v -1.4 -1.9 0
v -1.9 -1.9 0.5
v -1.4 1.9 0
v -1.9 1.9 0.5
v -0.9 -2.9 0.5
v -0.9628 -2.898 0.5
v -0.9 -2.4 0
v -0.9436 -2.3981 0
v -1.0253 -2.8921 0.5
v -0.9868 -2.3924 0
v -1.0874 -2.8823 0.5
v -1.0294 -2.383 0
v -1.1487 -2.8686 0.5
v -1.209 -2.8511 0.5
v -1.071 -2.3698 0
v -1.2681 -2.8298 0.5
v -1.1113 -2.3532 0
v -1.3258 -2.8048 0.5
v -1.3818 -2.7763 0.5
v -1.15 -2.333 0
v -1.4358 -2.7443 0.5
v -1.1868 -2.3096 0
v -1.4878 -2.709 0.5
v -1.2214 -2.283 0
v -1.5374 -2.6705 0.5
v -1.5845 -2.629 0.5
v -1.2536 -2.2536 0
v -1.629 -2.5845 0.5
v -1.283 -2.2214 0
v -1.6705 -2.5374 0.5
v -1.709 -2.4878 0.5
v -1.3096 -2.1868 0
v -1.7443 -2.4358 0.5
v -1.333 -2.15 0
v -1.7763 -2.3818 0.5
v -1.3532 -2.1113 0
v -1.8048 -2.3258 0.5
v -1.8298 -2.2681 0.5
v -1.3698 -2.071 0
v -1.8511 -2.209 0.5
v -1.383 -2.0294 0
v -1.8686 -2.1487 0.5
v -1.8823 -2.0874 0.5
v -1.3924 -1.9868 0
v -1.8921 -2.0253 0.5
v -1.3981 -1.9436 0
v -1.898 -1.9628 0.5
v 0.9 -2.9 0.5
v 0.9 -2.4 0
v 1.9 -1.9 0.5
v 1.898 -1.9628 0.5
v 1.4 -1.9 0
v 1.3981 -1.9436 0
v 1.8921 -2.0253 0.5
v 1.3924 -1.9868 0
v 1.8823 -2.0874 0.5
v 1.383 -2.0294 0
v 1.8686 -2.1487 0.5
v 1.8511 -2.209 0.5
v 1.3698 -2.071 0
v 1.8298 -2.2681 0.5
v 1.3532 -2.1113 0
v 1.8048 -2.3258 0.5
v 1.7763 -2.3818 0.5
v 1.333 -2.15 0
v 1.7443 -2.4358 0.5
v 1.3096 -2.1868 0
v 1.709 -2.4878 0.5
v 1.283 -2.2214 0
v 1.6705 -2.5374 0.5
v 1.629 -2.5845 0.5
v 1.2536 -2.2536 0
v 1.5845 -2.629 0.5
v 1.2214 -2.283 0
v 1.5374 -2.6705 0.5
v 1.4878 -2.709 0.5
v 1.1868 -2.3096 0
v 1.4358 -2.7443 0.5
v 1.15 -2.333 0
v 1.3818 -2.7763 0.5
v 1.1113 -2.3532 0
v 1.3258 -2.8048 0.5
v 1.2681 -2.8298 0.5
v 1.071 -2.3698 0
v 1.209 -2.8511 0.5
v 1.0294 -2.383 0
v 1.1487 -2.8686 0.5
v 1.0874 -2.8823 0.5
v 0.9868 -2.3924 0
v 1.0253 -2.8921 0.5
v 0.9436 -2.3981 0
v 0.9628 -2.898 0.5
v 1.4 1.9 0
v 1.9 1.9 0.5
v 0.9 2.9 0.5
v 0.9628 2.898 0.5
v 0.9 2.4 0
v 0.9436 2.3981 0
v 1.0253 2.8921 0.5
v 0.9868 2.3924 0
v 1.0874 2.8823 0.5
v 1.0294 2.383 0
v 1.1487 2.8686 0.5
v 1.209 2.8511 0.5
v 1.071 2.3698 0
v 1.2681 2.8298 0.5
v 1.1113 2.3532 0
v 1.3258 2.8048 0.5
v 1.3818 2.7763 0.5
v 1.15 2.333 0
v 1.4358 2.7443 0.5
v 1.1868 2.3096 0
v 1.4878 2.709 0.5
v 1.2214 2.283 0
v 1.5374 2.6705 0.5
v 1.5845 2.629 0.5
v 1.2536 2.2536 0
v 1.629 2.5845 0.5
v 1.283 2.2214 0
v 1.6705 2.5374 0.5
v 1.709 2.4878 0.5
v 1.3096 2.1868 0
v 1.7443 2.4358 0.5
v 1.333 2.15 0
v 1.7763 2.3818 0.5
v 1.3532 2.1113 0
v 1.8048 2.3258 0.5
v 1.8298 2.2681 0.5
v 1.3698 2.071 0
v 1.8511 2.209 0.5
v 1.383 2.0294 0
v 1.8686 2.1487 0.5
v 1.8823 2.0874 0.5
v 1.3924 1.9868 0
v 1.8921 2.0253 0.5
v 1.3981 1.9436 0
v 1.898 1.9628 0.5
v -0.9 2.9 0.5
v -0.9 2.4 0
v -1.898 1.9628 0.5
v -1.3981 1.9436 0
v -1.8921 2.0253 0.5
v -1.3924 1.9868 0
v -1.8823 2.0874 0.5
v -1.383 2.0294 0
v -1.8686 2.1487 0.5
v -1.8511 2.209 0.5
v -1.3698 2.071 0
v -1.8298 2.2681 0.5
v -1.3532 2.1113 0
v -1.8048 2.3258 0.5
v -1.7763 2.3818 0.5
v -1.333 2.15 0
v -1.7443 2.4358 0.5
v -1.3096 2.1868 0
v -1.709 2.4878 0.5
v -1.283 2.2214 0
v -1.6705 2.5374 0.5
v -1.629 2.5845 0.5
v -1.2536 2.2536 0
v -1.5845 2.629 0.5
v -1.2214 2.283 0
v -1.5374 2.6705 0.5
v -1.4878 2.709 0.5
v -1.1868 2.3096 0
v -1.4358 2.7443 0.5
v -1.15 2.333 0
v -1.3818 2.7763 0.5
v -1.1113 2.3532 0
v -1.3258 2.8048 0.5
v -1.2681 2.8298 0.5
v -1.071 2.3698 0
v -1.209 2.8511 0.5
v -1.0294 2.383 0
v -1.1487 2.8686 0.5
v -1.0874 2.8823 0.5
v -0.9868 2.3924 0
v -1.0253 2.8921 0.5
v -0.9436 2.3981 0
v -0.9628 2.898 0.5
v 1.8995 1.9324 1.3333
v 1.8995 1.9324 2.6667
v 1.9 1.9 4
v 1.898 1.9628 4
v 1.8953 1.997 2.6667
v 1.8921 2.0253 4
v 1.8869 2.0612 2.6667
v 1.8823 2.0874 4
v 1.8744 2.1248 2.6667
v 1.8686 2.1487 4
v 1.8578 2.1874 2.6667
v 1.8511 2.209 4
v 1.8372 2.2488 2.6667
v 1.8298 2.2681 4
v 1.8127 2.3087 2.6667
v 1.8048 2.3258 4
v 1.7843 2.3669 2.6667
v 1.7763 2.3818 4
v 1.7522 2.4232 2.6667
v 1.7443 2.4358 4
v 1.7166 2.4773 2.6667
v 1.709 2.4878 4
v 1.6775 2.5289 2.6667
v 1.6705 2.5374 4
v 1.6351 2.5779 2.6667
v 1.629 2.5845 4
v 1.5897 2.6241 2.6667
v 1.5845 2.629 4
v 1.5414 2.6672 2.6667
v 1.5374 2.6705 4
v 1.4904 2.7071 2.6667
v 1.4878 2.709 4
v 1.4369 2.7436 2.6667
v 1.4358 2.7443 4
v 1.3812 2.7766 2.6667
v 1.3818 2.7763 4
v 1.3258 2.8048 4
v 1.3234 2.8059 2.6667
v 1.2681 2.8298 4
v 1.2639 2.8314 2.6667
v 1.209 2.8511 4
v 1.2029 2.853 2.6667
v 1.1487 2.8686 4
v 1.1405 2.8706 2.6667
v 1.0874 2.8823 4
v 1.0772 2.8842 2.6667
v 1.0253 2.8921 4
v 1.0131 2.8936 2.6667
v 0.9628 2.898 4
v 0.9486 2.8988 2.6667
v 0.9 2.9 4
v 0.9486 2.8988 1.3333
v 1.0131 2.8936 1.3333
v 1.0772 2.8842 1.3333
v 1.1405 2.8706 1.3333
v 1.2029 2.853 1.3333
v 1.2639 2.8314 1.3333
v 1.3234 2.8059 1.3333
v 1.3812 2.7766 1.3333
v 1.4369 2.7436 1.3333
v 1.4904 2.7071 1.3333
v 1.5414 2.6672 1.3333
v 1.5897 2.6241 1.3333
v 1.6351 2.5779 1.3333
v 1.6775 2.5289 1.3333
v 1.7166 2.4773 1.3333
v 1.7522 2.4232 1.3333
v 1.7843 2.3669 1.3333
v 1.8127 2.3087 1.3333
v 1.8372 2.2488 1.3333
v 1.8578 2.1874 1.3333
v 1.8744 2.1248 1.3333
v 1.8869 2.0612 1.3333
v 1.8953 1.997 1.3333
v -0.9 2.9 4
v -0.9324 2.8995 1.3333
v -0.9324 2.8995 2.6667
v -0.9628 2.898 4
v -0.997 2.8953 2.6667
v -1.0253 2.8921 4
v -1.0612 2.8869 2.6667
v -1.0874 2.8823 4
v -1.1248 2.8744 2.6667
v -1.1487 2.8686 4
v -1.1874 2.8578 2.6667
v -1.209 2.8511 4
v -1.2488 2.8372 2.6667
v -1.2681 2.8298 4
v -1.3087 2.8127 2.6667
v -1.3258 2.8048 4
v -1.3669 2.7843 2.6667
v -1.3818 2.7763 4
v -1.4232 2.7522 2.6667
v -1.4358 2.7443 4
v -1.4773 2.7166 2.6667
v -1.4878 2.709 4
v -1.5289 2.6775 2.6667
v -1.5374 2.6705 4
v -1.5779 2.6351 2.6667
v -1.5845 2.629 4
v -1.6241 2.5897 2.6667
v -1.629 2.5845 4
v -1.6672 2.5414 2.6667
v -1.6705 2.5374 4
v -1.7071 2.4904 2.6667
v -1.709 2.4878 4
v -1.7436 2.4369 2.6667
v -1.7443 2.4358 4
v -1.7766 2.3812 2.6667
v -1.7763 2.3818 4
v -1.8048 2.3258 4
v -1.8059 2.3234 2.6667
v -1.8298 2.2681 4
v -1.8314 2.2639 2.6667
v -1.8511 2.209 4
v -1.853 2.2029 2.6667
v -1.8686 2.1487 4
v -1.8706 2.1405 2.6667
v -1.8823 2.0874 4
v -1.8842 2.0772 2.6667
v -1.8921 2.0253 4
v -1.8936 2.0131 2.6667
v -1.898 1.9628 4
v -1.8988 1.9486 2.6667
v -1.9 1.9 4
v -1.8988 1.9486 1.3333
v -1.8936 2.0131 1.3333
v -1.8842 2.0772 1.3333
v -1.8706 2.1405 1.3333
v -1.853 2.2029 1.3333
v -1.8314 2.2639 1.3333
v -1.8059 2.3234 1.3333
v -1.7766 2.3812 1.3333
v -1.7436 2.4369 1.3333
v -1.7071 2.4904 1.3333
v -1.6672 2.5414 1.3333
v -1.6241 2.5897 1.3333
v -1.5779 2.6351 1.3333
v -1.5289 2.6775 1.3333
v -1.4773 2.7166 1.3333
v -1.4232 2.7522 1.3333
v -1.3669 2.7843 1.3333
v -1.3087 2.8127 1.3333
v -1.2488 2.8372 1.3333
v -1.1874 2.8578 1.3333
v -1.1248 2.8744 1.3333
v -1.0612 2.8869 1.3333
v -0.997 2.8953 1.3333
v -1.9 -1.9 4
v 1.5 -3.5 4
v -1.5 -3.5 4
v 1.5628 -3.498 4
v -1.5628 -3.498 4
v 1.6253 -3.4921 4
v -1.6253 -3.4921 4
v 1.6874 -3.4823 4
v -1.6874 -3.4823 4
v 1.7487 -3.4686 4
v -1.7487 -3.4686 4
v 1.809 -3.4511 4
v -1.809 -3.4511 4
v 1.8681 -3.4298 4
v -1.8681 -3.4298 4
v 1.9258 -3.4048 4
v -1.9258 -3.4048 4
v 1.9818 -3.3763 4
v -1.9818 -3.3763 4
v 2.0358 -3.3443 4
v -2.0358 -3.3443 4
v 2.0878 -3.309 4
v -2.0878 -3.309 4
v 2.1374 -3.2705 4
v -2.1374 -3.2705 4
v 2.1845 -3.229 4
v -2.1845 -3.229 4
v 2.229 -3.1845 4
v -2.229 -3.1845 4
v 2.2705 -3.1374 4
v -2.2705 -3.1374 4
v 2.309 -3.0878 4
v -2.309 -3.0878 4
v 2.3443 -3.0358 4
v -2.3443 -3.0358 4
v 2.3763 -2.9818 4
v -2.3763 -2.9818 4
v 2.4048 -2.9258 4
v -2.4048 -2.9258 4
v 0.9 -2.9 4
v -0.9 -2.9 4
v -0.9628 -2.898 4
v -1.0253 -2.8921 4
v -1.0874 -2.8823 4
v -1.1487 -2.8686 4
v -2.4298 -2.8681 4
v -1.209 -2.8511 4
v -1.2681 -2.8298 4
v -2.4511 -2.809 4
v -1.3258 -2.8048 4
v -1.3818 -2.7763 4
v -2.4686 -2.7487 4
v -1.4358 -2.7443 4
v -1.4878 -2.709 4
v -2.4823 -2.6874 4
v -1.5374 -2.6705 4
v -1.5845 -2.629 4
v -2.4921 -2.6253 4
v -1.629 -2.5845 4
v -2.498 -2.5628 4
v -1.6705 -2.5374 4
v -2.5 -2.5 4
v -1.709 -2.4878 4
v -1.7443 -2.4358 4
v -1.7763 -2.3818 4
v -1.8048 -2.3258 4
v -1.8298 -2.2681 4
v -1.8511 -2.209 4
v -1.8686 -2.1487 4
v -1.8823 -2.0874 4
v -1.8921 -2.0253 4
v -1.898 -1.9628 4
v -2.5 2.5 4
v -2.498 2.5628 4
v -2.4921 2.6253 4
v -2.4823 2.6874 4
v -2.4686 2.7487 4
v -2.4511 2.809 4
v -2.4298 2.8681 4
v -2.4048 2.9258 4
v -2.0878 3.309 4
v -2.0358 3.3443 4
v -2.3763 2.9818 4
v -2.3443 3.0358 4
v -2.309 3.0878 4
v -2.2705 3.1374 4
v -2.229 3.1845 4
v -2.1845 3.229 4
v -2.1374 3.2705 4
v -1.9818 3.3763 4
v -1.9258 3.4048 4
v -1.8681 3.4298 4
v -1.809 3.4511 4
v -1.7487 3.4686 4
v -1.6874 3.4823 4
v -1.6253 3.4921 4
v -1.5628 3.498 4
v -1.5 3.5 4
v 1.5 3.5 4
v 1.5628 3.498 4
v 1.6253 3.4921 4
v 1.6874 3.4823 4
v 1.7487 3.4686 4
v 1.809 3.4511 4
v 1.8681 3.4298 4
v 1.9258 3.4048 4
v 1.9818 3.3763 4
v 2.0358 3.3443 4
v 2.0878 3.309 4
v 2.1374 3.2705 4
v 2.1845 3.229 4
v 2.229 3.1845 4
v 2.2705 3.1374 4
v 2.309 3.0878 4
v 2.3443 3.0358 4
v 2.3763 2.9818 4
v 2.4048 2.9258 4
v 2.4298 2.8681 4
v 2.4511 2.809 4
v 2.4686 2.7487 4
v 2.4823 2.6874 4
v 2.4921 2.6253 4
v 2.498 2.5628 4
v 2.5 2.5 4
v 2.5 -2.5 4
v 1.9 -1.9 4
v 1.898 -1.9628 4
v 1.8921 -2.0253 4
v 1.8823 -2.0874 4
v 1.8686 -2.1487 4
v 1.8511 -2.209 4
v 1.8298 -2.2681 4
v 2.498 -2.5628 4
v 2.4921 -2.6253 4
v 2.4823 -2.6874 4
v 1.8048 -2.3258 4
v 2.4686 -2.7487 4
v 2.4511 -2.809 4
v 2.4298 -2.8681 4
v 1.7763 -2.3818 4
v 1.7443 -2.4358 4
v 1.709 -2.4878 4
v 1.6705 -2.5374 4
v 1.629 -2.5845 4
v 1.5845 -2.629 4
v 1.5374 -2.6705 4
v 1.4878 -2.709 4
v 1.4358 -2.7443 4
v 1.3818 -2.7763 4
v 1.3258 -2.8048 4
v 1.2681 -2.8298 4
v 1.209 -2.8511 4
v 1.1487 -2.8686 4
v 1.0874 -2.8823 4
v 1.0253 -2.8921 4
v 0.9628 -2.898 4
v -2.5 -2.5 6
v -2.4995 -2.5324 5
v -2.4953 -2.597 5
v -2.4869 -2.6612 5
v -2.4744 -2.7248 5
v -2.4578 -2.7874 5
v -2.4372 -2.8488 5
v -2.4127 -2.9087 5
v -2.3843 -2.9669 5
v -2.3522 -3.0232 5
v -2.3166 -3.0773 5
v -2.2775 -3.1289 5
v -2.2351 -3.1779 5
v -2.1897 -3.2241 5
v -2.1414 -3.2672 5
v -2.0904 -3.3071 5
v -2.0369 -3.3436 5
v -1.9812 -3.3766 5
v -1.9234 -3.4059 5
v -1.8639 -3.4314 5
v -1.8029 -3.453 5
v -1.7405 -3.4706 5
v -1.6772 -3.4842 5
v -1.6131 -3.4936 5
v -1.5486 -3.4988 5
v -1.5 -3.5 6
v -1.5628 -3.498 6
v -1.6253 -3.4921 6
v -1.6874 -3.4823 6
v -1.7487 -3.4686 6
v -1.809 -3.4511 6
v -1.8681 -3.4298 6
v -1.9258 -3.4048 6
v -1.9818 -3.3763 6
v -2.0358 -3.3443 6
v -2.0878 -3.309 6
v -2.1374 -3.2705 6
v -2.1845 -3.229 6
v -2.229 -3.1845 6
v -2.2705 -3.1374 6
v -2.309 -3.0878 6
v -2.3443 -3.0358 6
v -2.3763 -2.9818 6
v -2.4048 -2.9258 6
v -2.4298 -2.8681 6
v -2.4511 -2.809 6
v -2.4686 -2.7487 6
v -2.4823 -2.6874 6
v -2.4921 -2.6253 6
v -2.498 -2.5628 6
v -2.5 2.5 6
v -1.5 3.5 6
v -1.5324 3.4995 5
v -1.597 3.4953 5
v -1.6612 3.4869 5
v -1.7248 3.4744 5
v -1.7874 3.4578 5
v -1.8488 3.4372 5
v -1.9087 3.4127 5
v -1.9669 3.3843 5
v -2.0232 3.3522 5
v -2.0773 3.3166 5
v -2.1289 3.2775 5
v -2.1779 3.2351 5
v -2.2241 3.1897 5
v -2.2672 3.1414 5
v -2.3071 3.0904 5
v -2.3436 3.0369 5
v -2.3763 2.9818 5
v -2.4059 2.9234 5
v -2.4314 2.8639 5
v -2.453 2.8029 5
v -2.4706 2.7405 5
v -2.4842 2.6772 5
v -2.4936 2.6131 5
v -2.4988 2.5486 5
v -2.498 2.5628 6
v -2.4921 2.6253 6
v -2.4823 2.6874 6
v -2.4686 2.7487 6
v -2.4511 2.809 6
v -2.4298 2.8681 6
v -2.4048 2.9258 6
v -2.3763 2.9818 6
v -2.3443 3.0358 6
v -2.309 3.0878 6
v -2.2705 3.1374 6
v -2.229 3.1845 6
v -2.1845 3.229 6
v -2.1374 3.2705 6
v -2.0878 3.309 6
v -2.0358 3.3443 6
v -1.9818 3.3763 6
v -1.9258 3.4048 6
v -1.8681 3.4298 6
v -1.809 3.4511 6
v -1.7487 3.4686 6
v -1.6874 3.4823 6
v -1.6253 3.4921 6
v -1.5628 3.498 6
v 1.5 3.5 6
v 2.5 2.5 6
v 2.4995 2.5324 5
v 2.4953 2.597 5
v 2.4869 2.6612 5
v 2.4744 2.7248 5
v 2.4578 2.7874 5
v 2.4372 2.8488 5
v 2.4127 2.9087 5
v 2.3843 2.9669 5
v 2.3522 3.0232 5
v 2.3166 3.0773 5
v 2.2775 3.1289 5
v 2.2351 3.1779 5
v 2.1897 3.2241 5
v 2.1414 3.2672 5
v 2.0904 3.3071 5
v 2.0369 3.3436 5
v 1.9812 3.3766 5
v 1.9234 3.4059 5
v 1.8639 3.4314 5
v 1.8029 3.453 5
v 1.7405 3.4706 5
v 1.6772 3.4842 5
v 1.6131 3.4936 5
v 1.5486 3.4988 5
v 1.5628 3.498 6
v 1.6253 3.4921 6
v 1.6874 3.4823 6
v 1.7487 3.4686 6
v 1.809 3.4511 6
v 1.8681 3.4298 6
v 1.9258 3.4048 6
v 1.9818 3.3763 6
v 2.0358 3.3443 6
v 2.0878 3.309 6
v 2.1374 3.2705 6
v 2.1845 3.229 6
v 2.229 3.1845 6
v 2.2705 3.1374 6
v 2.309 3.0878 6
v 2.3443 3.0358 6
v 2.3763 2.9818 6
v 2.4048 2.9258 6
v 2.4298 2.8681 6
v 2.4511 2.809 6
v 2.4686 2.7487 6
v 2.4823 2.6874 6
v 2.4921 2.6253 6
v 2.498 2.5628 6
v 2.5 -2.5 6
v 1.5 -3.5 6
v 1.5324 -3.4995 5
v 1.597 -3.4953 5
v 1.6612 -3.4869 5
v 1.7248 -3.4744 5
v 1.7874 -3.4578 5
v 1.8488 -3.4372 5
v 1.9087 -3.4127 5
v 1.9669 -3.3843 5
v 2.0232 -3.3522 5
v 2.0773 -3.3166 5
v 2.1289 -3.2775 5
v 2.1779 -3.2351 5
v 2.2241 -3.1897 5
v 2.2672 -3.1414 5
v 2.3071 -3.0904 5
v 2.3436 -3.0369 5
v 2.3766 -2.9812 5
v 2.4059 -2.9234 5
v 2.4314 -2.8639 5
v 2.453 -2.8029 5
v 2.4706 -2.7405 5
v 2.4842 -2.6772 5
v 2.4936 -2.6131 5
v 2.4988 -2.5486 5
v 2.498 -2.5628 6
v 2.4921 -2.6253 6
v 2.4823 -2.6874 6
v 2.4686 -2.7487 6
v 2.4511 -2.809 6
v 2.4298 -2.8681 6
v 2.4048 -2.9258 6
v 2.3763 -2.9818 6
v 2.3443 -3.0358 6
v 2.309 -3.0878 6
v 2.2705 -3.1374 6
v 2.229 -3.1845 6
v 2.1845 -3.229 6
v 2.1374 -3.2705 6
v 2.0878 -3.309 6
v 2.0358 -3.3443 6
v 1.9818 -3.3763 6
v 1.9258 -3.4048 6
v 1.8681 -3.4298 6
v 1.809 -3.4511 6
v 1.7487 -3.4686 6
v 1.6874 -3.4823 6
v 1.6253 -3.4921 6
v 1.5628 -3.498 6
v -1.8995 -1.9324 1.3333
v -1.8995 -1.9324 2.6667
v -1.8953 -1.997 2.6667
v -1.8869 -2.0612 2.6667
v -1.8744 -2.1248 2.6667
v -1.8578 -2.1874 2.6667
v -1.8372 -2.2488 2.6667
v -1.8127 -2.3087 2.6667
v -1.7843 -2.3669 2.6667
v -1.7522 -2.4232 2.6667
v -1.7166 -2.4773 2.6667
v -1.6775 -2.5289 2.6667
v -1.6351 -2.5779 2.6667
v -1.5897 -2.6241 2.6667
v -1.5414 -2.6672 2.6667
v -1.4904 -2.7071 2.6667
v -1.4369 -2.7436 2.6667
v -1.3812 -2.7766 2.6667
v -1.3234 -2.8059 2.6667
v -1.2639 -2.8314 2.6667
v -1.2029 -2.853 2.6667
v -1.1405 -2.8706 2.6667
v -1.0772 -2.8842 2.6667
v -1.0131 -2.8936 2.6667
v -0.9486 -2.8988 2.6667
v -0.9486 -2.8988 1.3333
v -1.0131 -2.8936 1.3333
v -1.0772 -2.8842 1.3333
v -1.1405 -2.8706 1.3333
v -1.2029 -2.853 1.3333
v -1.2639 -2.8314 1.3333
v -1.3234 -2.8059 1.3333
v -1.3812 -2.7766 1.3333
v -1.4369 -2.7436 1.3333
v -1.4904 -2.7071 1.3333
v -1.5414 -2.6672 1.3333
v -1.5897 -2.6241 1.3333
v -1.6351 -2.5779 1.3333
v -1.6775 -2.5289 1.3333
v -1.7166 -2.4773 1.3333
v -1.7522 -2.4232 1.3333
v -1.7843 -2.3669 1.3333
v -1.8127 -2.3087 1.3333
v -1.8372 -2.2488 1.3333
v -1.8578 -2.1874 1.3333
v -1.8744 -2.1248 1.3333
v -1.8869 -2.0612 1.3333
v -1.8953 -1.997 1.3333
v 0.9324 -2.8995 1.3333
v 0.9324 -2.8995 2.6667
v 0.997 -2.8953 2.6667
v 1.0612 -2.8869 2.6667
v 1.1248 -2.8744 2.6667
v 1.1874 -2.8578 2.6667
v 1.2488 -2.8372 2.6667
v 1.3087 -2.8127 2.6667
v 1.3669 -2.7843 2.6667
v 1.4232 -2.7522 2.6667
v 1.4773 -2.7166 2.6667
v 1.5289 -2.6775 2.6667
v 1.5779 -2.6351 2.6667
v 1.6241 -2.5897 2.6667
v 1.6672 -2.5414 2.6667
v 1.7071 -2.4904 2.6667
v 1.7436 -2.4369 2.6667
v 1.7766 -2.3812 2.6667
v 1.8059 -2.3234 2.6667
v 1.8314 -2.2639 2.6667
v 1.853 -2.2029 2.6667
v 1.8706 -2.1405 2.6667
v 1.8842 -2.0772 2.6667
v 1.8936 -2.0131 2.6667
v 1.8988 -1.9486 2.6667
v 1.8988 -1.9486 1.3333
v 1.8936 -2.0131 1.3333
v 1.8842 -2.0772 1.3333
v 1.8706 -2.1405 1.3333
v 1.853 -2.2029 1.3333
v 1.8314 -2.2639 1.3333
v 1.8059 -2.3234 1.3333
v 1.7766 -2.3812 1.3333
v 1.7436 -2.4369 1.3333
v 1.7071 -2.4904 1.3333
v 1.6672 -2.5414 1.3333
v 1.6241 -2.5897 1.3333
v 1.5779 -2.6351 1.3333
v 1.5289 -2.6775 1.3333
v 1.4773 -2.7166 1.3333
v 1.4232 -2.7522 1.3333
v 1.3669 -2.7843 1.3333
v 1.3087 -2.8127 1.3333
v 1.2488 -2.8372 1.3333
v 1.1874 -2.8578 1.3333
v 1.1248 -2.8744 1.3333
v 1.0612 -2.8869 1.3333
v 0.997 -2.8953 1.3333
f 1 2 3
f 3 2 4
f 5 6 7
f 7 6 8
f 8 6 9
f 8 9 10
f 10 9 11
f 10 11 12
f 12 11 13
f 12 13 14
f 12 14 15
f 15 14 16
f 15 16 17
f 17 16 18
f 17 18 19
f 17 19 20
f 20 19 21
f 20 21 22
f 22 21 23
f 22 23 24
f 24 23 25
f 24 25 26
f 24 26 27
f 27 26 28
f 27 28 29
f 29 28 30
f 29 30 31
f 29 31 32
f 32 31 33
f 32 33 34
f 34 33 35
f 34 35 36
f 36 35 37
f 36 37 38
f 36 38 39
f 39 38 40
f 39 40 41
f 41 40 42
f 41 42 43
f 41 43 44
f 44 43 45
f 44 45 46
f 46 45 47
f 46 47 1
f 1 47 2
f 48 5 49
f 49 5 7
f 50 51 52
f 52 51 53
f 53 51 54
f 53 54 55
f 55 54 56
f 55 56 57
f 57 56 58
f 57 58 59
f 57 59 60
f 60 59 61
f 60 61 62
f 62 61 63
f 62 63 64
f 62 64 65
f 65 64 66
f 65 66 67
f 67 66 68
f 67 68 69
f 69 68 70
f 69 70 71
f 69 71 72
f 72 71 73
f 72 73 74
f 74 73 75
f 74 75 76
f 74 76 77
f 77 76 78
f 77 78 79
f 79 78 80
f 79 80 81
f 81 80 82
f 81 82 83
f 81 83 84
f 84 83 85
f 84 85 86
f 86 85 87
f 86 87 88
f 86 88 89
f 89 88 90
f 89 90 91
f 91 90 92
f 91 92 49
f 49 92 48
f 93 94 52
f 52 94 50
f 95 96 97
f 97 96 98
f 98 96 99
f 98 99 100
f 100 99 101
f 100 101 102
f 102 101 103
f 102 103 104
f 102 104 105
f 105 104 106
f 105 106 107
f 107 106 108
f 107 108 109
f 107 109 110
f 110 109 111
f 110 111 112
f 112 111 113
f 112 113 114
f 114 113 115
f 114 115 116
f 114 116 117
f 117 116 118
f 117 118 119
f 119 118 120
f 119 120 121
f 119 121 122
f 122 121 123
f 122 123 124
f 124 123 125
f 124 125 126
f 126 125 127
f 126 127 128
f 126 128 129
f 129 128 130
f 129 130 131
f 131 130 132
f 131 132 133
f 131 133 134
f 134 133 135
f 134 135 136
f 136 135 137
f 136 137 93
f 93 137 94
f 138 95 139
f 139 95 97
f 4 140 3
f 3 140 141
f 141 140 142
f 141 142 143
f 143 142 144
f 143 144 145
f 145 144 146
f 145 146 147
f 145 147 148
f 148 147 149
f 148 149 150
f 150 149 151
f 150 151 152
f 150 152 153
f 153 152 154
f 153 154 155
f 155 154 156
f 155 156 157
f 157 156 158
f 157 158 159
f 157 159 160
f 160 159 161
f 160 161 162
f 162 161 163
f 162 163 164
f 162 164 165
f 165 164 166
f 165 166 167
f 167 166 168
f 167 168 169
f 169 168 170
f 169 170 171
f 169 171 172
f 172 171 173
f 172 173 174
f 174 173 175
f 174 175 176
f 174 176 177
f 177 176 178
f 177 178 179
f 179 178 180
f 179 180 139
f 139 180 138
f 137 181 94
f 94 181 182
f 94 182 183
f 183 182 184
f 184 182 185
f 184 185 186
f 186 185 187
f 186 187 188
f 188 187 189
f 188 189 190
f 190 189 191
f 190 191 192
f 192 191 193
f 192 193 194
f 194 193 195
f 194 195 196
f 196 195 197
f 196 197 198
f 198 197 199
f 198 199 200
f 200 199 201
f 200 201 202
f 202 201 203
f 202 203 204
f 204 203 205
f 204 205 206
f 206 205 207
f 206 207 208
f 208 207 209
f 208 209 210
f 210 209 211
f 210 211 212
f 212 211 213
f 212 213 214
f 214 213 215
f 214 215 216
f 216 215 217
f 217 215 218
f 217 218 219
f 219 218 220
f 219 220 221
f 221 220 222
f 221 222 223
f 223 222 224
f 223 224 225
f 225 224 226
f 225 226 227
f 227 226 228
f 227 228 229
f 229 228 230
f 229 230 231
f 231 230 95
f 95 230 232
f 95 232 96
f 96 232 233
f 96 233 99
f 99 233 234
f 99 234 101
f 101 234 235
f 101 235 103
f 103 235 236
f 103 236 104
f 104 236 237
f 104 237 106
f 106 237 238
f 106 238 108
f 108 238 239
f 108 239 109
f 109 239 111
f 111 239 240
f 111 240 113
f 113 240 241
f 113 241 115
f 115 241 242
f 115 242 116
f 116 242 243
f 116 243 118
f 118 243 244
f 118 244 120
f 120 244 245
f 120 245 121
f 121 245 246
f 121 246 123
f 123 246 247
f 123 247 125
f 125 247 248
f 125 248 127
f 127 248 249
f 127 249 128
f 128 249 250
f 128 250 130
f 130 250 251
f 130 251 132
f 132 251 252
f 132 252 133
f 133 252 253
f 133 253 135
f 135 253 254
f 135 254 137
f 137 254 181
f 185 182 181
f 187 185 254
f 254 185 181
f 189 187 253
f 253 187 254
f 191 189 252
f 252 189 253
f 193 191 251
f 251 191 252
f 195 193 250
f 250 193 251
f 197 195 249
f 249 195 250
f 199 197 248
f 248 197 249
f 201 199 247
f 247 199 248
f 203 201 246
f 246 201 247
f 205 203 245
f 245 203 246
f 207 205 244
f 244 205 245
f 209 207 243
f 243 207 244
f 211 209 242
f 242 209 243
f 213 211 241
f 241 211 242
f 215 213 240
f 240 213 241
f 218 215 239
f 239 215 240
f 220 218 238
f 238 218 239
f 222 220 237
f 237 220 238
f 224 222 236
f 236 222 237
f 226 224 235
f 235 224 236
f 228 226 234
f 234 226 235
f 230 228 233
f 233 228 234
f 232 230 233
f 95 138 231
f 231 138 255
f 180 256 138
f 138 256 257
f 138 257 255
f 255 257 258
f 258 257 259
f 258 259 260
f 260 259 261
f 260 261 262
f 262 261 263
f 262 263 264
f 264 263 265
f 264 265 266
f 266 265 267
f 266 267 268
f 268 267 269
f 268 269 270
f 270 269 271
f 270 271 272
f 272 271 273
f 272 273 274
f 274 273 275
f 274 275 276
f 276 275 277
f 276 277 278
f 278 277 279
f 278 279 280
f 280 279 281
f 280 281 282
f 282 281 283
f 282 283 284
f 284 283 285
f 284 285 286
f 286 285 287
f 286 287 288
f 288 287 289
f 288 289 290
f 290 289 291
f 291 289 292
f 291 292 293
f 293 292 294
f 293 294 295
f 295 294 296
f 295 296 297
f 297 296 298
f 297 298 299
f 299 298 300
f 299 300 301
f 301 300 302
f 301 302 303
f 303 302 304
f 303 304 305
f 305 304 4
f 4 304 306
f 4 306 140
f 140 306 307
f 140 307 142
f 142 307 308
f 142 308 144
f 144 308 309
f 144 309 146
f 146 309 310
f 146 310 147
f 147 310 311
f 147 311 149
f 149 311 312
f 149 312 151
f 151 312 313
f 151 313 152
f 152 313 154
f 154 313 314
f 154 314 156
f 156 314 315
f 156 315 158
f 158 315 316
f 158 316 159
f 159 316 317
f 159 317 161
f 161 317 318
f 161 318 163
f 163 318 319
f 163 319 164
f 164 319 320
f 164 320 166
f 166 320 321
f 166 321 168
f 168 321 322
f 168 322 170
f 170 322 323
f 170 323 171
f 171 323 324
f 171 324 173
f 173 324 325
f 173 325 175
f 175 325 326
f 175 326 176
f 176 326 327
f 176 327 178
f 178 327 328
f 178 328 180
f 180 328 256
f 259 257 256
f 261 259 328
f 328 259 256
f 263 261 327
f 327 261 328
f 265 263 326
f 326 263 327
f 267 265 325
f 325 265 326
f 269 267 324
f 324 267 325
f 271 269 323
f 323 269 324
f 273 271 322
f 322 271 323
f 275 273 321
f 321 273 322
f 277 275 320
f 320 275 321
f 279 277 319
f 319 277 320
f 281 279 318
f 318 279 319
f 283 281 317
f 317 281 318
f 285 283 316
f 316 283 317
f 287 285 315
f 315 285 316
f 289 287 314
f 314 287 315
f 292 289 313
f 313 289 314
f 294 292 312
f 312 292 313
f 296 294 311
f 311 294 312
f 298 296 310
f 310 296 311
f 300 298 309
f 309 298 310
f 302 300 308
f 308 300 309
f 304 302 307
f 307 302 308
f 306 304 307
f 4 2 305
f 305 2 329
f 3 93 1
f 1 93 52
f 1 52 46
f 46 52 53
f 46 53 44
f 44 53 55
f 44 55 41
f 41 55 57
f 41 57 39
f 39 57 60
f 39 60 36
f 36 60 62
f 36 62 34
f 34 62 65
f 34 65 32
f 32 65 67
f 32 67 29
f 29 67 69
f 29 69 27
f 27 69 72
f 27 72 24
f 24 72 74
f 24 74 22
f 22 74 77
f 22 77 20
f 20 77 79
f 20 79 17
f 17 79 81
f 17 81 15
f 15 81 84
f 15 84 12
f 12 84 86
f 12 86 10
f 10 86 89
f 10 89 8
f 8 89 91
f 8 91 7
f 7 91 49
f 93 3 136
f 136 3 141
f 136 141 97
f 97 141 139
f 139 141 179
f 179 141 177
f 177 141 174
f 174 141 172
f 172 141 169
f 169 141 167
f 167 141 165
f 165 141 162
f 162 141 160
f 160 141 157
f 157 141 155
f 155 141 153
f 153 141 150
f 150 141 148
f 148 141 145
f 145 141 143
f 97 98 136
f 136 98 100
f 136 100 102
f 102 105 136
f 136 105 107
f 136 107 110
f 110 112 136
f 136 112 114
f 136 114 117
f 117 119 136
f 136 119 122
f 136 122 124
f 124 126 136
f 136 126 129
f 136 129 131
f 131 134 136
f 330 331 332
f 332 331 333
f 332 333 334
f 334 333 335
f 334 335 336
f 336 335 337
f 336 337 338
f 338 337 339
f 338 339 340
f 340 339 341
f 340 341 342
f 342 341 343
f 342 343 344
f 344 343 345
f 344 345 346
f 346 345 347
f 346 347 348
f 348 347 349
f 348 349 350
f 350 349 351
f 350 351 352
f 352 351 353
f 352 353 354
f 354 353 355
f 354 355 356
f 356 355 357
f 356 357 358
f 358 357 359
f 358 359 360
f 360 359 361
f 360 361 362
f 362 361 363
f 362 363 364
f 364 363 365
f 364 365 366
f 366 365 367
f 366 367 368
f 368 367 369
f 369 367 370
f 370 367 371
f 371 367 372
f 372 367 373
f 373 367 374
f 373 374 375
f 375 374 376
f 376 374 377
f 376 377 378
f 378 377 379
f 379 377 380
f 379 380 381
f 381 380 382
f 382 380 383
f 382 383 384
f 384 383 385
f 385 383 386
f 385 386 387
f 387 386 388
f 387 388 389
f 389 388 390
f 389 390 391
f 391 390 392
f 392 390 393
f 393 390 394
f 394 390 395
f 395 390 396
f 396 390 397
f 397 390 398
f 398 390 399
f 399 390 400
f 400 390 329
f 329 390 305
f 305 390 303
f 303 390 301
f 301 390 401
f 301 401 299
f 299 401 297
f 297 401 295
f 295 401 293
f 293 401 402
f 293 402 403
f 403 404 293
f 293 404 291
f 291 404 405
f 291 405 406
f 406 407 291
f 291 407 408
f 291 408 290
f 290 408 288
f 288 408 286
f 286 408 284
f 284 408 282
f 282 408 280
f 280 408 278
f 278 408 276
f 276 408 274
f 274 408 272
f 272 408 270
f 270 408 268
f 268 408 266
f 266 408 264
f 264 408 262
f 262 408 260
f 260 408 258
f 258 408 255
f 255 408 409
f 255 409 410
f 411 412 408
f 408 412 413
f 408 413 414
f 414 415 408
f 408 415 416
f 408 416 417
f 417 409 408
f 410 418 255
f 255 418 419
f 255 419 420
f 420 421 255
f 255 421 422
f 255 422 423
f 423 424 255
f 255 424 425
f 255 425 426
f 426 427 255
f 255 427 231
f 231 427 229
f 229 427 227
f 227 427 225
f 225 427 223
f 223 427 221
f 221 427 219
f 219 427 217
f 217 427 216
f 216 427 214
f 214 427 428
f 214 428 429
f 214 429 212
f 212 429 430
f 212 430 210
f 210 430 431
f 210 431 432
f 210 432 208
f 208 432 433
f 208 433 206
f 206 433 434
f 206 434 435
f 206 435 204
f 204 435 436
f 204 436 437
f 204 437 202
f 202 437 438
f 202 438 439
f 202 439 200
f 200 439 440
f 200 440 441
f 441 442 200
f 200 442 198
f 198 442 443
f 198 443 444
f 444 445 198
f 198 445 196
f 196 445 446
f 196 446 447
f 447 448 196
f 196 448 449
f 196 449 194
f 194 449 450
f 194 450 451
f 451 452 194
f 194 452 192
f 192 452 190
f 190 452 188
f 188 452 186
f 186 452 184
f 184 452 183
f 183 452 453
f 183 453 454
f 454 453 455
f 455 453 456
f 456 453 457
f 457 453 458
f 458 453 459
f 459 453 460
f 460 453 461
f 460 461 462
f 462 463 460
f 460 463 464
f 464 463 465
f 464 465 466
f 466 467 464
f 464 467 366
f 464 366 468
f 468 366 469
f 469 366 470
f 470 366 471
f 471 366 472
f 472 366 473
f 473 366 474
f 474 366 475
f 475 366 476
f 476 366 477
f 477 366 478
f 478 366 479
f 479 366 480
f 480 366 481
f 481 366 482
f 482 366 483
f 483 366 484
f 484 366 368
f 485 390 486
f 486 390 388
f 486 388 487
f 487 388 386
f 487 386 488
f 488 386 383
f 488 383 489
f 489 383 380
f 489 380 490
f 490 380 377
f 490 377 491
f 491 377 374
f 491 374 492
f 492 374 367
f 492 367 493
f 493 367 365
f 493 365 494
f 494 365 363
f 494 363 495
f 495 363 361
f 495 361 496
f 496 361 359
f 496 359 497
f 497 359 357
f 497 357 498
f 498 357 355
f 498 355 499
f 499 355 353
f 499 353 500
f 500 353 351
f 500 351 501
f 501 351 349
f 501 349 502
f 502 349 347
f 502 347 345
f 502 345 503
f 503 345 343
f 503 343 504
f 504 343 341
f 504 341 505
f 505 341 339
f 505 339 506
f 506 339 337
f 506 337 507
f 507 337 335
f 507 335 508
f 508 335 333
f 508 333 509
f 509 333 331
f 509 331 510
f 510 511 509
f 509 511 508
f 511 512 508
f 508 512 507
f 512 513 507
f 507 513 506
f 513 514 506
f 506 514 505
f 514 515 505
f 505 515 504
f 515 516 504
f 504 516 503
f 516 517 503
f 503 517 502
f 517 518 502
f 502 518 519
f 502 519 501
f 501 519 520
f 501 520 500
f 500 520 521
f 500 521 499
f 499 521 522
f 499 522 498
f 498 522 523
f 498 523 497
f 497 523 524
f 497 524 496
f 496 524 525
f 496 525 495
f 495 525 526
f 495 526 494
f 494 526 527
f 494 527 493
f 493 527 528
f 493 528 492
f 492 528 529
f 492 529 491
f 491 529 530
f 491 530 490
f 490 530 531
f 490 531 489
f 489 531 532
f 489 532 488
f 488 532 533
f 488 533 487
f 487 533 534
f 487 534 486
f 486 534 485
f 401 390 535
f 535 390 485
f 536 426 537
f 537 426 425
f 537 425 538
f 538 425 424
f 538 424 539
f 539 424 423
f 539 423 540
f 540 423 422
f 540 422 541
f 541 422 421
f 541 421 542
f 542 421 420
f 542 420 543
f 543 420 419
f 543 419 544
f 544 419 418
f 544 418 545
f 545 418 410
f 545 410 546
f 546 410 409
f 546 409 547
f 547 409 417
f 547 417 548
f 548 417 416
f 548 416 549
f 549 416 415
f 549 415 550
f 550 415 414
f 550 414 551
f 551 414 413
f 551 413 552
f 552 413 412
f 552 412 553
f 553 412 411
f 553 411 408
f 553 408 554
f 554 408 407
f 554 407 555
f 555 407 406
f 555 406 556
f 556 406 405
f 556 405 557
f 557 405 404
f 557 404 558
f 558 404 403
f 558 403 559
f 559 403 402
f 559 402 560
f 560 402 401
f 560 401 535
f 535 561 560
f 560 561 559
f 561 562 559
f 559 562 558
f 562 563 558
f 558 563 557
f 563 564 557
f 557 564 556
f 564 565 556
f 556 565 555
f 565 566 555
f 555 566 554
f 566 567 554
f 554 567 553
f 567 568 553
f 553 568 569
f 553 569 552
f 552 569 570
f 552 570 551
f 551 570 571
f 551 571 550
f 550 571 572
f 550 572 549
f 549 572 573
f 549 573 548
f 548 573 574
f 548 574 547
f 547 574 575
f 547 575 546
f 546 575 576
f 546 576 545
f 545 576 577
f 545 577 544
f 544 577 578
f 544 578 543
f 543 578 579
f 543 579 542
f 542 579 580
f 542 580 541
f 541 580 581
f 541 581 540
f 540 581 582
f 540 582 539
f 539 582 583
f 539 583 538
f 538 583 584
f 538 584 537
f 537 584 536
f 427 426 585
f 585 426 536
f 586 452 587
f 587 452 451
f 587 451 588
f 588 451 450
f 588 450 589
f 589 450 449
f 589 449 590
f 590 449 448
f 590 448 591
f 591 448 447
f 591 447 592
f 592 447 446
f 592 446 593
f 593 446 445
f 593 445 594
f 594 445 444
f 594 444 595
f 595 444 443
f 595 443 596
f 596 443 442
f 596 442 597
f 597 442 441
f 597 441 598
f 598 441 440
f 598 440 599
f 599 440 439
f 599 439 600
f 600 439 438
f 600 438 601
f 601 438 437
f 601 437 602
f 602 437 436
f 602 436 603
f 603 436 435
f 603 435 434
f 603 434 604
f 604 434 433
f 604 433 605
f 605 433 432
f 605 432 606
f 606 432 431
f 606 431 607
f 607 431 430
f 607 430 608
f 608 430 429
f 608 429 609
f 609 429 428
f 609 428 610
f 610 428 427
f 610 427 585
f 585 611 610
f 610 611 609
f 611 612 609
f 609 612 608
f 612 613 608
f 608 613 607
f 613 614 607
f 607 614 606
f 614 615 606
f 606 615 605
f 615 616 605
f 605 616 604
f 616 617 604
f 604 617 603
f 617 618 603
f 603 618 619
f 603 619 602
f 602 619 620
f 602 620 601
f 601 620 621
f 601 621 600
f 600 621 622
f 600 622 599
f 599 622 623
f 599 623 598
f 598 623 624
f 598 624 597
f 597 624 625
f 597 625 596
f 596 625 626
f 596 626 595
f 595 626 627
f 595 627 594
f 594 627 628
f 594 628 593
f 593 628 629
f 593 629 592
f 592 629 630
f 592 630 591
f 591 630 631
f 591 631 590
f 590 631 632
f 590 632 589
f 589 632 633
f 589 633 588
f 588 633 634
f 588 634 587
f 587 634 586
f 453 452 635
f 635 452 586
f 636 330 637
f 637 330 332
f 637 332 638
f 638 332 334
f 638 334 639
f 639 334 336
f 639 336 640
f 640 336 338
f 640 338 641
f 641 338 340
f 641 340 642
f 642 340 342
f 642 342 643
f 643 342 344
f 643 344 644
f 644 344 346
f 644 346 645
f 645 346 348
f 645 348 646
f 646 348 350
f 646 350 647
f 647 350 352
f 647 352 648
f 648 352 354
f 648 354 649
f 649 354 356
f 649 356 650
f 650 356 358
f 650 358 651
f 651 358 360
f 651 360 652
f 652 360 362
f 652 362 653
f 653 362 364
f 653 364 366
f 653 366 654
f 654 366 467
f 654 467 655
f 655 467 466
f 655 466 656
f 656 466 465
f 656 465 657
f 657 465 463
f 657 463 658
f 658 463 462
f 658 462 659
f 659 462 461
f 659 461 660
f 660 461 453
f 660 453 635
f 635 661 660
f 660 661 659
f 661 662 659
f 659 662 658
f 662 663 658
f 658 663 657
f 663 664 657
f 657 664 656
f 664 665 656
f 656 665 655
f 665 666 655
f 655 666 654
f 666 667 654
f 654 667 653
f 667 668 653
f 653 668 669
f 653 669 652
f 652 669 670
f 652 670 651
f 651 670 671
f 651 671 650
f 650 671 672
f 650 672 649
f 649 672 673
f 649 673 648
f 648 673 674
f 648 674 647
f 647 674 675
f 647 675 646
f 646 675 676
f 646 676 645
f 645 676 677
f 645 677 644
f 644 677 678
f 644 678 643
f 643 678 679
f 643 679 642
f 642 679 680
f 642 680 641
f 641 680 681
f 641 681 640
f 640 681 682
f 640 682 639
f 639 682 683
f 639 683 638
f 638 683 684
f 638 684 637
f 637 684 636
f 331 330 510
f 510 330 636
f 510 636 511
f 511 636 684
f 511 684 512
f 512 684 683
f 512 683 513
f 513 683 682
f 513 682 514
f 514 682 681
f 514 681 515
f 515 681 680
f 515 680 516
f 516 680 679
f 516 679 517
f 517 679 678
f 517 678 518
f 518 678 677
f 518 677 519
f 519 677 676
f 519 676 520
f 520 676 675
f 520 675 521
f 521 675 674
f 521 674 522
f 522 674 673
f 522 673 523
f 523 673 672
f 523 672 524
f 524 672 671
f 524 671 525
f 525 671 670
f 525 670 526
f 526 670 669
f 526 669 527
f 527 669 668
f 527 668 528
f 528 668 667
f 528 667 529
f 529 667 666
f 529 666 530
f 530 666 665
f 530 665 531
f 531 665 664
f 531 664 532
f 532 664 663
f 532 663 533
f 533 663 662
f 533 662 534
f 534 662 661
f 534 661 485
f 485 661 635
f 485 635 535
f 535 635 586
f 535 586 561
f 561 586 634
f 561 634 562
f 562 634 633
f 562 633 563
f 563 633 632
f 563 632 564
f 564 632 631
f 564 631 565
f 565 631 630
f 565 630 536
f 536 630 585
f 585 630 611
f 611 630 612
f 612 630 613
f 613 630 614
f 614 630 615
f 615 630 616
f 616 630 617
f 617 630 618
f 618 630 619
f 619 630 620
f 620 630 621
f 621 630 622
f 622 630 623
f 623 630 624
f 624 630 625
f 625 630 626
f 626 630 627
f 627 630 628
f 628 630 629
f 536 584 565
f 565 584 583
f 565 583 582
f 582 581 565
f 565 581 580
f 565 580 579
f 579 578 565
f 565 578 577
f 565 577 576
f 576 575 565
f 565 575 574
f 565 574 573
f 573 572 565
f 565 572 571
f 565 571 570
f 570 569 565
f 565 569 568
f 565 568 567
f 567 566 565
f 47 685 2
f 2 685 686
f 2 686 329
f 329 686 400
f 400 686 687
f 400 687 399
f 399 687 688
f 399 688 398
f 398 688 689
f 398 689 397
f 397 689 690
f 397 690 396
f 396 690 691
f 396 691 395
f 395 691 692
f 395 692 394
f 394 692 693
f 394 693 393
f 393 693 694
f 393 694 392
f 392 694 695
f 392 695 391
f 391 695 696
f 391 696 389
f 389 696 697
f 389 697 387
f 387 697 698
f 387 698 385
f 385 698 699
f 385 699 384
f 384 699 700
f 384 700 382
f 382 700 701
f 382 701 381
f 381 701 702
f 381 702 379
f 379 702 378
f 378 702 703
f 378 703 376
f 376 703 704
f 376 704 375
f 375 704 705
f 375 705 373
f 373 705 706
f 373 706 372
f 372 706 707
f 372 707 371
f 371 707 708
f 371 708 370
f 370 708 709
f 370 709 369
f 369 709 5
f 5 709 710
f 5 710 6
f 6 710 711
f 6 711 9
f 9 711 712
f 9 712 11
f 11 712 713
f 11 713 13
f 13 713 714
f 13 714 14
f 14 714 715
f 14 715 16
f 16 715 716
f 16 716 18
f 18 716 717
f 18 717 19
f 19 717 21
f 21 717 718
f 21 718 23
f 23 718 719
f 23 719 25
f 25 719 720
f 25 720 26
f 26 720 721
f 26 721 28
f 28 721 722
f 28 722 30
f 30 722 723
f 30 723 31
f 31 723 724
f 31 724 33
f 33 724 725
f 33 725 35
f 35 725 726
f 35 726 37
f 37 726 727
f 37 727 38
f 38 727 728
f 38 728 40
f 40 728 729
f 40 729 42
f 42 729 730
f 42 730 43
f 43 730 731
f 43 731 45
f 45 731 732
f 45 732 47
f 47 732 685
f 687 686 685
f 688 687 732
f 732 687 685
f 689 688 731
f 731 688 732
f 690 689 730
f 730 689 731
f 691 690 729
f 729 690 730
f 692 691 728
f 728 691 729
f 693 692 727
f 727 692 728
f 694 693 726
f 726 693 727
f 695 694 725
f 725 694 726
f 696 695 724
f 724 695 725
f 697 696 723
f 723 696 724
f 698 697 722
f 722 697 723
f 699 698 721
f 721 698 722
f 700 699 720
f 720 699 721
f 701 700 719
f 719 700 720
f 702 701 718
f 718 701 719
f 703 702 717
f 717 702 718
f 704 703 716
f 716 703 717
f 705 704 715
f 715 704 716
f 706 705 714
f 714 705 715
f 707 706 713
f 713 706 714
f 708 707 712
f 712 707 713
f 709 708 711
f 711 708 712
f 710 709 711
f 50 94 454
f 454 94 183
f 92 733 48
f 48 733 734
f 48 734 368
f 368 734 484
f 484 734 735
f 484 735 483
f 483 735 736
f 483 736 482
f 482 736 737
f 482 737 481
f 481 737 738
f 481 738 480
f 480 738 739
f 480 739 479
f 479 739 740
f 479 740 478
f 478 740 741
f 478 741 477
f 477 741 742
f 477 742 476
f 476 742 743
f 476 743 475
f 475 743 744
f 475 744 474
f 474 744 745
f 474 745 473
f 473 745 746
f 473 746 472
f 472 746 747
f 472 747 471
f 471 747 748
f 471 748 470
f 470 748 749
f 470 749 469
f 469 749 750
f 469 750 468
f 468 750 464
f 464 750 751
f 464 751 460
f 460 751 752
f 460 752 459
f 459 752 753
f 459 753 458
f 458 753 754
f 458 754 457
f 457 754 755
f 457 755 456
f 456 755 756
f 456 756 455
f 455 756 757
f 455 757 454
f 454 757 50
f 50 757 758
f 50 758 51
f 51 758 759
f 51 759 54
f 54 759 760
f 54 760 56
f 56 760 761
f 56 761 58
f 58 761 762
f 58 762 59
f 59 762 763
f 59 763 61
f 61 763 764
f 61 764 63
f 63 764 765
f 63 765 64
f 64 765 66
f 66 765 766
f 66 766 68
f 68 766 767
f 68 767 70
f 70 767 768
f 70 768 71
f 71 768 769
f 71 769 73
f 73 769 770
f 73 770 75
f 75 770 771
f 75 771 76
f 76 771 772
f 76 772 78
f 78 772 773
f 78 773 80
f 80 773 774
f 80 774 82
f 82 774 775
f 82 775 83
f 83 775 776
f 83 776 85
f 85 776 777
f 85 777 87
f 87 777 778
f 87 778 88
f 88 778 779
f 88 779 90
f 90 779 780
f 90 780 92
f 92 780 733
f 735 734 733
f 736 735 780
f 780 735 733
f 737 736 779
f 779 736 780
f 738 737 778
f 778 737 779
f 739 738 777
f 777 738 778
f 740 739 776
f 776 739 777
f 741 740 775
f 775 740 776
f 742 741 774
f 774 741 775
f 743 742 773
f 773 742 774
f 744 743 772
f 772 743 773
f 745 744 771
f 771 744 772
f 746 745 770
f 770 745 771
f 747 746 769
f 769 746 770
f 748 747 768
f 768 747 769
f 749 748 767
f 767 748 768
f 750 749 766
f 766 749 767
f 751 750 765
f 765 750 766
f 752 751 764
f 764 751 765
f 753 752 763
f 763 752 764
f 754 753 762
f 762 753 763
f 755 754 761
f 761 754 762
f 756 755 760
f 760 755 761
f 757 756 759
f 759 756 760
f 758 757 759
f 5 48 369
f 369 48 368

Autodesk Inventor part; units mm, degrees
ref_plane "YZ Plane" through (0, 0, 0) normal (1, 0, 0) x (0, 1, 0)
ref_plane "XZ Plane" through (0, 0, 0) normal (0, 1, 0) x (-1, 0, 0)
ref_plane "XY Plane" through (0, 0, 0) normal (0, 0, 1) x (1, 0, 0)
sketch "Sketch1" plane through (0, 0, 0) normal (0, 0, 1) x (1, 0, 0)
  line L0 (-0.9, 2.9) -> (0.9, 2.9)
  line L1 (1.9, 1.9) -> (1.9, -1.9)
  line L2 (0.9, -2.9) -> (-0.9, -2.9)
  line L3 (-1.9, -1.9) -> (-1.9, 1.9)
  arc A0 (1.9, 1.9) -> (0.9, 2.9) centre (0.9, 1.9) ccw
  arc A1 (0.9, -2.9) -> (1.9, -1.9) centre (0.9, -1.9) ccw
  arc A2 (-1.9, -1.9) -> (-0.9, -2.9) centre (-0.9, -1.9) ccw
  arc A3 (-0.9, 2.9) -> (-1.9, 1.9) centre (-0.9, 1.9) ccw
  point P0 (0, 0)
  point P1 (0, 2.9)
  point P2 (-1.9, 0)
  dimension "d1" = 3.8
  dimension "d2" = 5.8
  dimension "d3" = 1
extrude "Extrusion1" add sketch "Sketch1" along normal blind 4
sketch "Sketch2" plane through (0, 0, 4) normal (0, 0, 1) x (1, 0, 0)
  line L0 (-1.5, 3.5) -> (1.5, 3.5)
  line L1 (2.5, 2.5) -> (2.5, -2.5)
  line L2 (1.5, -3.5) -> (-1.5, -3.5)
  line L3 (-2.5, -2.5) -> (-2.5, 2.5)
  arc A0 (2.5, 2.5) -> (1.5, 3.5) centre (1.5, 2.5) ccw
  arc A1 (-2.5, -2.5) -> (-1.5, -3.5) centre (-1.5, -2.5) ccw
  arc A2 (1.5, -3.5) -> (2.5, -2.5) centre (1.5, -2.5) ccw
  arc A3 (-1.5, 3.5) -> (-2.5, 2.5) centre (-1.5, 2.5) ccw
  point P0 (0, 0)
  point P1 (-2.5, 3.5)
  point P2 (2.5, -3.5)
  point P3 (2.5, 3.5)
  point P4 (0, 3.5)
  point P5 (2.5, 0)
  dimension "d6" = 5
  dimension "d7" = 7
  dimension "d9" = 1
extrude "Extrusion2" add sketch "Sketch2" along normal blind 2
chamfer "Chamfer1" distance 0.5 angle 45 8 edges at (-1.9, 0, 0) (-1.6071, -2.6071, 0) (0, -2.9, 0) (1.6071, -2.6071, 0) (1.9, 0, 0) (1.6071, 2.6071, 0) (0, 2.9, 0) (-1.6071, 2.6071, 0)
properties part number "Button_Extender"
